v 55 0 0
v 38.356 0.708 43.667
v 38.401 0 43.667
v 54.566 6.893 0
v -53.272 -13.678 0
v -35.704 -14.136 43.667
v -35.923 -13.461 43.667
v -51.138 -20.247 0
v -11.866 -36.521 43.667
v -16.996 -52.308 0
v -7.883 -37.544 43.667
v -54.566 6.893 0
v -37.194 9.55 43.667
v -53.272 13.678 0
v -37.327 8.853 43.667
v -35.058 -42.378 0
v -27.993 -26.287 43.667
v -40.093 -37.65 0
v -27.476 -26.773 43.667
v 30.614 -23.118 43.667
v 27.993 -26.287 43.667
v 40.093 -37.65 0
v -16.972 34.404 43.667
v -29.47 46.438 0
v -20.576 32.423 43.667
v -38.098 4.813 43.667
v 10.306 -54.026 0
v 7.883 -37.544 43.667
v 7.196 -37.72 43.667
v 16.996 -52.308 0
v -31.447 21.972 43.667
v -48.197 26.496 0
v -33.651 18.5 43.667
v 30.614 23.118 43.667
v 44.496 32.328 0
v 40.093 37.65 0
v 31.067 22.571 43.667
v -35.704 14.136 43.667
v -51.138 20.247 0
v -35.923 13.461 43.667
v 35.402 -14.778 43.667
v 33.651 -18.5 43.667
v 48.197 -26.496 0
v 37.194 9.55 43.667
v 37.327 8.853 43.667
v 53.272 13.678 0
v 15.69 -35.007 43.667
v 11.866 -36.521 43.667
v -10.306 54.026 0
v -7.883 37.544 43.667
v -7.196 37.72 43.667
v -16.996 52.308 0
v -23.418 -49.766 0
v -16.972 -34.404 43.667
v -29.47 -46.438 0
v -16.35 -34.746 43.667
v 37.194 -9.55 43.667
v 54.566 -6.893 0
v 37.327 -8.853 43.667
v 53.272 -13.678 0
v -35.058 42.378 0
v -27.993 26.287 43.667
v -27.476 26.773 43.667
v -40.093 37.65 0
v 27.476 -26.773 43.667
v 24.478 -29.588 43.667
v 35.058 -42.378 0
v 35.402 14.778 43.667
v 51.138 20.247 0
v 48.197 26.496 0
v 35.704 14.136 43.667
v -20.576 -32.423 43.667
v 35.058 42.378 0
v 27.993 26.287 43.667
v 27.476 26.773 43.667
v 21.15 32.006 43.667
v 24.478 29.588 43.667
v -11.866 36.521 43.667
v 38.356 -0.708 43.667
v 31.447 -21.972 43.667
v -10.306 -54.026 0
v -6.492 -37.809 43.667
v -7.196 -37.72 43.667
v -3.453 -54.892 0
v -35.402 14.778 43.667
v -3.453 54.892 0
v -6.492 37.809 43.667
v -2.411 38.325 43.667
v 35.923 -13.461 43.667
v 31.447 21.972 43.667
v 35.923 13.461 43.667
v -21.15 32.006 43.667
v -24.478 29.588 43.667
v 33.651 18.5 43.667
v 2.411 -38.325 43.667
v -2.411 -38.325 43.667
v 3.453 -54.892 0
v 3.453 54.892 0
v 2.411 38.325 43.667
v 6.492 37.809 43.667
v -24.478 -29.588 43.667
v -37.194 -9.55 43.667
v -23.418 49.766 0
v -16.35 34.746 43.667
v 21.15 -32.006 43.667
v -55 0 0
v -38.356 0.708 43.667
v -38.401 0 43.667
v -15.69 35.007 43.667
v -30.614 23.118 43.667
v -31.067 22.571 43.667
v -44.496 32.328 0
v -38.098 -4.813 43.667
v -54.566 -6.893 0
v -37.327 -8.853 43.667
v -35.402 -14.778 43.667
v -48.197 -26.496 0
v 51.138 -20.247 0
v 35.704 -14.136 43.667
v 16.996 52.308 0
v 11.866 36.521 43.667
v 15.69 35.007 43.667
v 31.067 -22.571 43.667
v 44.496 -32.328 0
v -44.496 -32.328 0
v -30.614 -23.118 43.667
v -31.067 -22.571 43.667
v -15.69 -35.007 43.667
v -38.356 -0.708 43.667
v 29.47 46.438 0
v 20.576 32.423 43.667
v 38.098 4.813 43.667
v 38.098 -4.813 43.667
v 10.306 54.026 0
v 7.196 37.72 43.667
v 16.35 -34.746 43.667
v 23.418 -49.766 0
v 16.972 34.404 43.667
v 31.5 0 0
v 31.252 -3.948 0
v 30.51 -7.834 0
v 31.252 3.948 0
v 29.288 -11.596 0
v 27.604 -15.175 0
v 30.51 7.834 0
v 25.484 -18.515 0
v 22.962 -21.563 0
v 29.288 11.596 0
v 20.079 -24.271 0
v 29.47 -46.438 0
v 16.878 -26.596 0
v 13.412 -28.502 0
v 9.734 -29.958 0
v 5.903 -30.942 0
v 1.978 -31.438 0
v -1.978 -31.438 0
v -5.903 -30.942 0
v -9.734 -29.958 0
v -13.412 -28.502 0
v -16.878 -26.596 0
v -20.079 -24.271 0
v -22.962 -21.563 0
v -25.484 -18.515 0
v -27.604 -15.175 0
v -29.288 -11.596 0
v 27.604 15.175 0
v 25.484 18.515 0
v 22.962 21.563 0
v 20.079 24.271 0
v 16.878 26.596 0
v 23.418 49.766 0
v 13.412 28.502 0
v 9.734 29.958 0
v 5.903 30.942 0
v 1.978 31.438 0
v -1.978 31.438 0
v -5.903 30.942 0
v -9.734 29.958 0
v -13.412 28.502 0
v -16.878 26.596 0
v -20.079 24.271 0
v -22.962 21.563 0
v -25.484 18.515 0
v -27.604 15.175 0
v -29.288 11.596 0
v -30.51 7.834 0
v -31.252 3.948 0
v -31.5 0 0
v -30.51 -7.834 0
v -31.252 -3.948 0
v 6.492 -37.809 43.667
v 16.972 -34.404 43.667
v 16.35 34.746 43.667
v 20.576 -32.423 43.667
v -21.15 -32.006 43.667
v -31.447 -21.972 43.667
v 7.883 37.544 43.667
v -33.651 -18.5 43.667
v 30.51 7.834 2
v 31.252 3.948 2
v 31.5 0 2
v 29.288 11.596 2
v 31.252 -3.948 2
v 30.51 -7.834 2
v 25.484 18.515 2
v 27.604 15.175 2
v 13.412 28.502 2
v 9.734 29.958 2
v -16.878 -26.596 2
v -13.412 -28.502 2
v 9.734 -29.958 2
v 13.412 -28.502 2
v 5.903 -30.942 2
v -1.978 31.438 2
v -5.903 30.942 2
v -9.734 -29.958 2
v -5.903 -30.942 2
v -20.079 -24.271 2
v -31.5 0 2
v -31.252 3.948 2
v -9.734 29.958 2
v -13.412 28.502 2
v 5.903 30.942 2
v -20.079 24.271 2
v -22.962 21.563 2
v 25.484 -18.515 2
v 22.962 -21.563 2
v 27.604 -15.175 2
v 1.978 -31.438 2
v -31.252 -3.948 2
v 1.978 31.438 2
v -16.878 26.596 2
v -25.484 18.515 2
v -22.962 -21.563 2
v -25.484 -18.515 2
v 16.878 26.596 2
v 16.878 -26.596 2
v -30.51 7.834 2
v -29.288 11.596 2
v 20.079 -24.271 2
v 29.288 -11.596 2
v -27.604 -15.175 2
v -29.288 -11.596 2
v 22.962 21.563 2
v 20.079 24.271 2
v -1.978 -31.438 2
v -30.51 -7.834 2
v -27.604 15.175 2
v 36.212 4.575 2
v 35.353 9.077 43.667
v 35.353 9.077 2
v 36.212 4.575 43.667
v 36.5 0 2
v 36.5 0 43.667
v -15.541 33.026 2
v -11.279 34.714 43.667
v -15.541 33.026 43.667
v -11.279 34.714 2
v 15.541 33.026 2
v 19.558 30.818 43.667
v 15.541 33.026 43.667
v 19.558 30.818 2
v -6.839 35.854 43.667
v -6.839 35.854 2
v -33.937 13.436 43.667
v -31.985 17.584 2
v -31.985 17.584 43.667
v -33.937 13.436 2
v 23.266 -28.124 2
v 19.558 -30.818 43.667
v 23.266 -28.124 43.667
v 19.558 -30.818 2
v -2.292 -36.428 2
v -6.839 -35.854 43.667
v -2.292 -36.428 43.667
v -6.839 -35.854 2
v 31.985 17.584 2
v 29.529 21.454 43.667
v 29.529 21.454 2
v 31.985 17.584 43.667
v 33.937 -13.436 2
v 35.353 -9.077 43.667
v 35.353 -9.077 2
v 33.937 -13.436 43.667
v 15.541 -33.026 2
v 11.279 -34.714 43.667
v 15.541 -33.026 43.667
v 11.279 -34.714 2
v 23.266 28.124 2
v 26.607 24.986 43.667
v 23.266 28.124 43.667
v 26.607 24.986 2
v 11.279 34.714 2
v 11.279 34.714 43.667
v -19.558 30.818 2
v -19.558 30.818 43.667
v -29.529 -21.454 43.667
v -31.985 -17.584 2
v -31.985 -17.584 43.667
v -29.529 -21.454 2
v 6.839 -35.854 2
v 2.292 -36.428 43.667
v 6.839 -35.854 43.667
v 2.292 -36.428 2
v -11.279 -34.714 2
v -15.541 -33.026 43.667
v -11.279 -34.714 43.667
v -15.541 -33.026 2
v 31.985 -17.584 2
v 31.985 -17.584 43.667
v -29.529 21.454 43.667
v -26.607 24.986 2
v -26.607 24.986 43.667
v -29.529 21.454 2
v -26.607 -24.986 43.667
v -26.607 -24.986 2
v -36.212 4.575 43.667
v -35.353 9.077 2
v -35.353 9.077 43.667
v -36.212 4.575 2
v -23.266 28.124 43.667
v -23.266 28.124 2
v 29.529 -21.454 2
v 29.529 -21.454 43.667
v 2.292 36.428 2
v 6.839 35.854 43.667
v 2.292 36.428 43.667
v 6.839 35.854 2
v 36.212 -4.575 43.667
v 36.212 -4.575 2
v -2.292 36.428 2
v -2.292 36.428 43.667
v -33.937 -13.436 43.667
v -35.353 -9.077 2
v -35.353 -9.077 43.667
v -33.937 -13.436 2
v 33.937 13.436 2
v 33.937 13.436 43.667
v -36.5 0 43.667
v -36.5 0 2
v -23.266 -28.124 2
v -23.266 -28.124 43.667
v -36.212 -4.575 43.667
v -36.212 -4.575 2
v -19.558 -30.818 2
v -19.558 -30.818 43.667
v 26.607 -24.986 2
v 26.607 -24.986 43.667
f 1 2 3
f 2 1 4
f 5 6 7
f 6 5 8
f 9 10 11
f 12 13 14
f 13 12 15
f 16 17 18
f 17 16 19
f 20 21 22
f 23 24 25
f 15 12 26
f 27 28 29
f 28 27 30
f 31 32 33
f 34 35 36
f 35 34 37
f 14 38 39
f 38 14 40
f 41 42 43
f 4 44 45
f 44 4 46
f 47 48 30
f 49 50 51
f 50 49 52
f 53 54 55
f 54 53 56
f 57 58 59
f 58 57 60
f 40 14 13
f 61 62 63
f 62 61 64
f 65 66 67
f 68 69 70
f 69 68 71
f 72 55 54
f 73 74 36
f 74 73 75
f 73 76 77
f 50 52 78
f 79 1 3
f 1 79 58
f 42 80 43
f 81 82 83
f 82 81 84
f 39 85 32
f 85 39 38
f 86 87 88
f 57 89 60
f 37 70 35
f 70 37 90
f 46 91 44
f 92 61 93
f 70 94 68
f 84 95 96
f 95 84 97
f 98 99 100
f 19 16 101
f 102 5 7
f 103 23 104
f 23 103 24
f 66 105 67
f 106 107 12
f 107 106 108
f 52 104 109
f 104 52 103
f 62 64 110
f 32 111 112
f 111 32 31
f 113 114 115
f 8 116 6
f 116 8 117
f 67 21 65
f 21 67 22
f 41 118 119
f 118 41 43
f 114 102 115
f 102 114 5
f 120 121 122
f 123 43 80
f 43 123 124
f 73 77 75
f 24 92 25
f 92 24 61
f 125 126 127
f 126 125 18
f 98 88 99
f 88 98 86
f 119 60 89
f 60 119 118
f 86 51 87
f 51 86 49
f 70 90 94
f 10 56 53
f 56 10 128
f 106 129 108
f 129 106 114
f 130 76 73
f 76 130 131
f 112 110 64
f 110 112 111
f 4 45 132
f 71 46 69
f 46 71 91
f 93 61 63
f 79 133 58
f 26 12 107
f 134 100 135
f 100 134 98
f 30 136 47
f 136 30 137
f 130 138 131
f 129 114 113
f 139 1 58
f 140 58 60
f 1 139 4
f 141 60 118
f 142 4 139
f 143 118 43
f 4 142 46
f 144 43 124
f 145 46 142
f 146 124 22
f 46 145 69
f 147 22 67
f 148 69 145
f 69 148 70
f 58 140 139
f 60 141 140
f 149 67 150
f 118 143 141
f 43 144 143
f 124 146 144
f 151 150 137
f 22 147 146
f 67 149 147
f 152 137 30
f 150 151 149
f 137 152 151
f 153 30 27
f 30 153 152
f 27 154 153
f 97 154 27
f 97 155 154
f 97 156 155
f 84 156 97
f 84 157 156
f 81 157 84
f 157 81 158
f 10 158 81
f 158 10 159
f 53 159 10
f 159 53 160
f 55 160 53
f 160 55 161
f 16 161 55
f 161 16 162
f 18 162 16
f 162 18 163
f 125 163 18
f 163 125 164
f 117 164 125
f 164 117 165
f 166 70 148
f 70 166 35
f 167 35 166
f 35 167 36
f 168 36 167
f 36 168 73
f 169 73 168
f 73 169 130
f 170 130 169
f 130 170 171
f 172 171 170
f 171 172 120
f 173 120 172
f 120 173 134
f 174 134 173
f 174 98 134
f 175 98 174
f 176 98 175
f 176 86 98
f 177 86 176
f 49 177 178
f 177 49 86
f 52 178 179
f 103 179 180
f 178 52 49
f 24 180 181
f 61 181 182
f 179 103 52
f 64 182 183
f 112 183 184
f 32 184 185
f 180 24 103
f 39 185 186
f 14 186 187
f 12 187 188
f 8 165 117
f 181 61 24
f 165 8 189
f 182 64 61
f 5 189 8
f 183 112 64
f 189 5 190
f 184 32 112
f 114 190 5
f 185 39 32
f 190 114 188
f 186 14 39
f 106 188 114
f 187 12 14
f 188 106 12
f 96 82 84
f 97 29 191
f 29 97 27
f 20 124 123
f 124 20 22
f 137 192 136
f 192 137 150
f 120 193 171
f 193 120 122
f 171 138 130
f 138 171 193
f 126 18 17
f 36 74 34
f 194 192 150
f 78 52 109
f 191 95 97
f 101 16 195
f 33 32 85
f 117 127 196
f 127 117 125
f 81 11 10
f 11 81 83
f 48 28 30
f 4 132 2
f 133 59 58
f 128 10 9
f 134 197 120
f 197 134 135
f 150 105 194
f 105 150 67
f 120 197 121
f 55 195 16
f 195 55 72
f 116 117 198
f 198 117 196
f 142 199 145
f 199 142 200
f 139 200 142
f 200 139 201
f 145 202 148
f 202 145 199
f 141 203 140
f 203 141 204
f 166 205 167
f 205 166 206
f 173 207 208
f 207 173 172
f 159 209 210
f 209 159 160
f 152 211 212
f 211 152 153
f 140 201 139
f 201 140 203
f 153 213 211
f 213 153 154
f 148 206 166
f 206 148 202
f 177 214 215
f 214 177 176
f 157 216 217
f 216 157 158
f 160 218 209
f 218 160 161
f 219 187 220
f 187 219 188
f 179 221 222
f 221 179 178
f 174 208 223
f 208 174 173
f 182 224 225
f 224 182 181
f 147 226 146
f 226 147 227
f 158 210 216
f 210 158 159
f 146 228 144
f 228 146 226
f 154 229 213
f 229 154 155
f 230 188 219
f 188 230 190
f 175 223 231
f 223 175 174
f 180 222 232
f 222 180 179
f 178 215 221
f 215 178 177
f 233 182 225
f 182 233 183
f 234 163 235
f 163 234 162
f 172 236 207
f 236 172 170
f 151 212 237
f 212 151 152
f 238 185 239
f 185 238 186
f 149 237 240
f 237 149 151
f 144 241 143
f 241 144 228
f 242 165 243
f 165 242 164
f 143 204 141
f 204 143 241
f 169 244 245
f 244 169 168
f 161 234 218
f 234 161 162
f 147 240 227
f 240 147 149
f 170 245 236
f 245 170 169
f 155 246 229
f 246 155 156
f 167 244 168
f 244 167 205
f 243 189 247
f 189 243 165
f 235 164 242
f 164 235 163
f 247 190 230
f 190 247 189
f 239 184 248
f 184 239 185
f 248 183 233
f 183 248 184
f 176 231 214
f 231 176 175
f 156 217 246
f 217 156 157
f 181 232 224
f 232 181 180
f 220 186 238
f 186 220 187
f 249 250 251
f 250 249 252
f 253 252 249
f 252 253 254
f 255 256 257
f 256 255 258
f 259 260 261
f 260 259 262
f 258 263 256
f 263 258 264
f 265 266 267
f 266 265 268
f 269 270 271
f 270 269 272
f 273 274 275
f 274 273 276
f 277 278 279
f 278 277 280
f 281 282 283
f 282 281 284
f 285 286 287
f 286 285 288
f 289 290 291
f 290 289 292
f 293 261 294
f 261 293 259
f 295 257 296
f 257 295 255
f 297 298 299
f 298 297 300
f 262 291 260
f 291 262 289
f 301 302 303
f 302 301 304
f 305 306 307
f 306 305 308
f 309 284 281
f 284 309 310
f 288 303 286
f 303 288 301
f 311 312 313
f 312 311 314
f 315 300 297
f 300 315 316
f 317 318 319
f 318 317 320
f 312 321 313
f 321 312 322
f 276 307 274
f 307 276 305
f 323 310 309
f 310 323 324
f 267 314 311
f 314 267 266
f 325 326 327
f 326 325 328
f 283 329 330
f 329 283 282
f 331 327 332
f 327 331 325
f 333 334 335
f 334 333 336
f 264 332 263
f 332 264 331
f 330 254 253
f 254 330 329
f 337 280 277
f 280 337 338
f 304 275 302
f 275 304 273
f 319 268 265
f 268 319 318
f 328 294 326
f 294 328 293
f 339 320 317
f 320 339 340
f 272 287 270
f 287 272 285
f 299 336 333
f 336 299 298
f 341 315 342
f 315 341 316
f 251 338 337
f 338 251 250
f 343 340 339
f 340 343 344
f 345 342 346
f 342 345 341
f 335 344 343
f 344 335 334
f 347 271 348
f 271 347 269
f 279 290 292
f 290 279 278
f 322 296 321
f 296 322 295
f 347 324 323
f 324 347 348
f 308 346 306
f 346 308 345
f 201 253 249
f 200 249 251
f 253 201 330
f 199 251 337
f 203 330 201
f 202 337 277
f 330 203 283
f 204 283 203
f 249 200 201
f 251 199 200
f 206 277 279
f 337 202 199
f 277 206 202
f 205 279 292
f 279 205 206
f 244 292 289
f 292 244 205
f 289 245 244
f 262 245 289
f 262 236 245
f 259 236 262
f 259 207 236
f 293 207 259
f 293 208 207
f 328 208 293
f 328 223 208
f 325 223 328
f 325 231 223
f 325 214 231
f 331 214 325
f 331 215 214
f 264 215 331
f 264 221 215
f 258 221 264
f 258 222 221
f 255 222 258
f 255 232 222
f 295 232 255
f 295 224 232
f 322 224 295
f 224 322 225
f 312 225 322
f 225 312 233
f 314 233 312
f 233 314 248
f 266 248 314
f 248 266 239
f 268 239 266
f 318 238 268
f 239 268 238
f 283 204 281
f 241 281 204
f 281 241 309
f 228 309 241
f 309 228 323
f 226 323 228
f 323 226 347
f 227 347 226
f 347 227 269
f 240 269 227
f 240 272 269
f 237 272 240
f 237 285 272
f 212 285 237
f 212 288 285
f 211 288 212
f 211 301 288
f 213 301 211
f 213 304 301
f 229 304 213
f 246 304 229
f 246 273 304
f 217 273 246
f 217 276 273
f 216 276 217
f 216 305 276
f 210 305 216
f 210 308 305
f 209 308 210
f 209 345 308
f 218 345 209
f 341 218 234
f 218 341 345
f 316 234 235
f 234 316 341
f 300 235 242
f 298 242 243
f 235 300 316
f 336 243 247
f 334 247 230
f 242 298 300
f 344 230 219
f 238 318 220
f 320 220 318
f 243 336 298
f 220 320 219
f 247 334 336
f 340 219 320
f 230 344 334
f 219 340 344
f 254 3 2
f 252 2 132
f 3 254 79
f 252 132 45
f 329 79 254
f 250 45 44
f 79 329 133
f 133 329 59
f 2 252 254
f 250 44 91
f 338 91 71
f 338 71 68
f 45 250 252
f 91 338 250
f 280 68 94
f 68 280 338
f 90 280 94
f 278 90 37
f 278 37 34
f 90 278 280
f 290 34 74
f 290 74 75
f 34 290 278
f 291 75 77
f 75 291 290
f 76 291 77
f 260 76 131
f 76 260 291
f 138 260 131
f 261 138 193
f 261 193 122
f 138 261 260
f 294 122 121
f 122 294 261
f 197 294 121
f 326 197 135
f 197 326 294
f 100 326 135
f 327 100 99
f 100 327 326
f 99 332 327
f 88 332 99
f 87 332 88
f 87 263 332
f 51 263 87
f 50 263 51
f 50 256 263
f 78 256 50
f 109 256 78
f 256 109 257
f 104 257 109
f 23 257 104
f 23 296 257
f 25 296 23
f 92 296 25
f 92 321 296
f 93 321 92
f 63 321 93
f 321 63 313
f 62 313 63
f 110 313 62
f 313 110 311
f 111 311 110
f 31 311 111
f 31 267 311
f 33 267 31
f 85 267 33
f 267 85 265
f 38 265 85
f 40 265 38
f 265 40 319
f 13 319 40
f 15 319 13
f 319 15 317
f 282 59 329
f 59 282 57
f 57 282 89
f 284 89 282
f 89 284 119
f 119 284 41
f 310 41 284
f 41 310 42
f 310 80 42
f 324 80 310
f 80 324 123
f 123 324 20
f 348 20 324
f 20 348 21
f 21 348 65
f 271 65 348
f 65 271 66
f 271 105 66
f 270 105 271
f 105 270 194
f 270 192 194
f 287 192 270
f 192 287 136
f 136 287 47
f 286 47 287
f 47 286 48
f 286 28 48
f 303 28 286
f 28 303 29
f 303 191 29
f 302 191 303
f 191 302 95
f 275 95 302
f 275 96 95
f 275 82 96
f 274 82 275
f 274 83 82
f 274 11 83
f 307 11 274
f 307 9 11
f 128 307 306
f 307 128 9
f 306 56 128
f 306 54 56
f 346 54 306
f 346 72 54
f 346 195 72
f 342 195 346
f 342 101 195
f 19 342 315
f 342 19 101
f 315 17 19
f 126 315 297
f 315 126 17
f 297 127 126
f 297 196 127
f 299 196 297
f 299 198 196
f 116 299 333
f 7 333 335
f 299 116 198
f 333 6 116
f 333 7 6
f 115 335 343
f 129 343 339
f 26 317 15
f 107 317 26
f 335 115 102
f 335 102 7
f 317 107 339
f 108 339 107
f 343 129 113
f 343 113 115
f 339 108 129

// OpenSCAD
$fn=50;

botd=73;
based=110;
hh=2/3*botd;
module main() {
  difference() {
    cylinder(hh,d1=based,d2=botd);
    cylinder(20,d=botd-10);
    translate([0,0,2]) cylinder(100,d=botd);
    translate([0,0,hh-5]) cylinder(30,d=based);
  }
  
}



main();
